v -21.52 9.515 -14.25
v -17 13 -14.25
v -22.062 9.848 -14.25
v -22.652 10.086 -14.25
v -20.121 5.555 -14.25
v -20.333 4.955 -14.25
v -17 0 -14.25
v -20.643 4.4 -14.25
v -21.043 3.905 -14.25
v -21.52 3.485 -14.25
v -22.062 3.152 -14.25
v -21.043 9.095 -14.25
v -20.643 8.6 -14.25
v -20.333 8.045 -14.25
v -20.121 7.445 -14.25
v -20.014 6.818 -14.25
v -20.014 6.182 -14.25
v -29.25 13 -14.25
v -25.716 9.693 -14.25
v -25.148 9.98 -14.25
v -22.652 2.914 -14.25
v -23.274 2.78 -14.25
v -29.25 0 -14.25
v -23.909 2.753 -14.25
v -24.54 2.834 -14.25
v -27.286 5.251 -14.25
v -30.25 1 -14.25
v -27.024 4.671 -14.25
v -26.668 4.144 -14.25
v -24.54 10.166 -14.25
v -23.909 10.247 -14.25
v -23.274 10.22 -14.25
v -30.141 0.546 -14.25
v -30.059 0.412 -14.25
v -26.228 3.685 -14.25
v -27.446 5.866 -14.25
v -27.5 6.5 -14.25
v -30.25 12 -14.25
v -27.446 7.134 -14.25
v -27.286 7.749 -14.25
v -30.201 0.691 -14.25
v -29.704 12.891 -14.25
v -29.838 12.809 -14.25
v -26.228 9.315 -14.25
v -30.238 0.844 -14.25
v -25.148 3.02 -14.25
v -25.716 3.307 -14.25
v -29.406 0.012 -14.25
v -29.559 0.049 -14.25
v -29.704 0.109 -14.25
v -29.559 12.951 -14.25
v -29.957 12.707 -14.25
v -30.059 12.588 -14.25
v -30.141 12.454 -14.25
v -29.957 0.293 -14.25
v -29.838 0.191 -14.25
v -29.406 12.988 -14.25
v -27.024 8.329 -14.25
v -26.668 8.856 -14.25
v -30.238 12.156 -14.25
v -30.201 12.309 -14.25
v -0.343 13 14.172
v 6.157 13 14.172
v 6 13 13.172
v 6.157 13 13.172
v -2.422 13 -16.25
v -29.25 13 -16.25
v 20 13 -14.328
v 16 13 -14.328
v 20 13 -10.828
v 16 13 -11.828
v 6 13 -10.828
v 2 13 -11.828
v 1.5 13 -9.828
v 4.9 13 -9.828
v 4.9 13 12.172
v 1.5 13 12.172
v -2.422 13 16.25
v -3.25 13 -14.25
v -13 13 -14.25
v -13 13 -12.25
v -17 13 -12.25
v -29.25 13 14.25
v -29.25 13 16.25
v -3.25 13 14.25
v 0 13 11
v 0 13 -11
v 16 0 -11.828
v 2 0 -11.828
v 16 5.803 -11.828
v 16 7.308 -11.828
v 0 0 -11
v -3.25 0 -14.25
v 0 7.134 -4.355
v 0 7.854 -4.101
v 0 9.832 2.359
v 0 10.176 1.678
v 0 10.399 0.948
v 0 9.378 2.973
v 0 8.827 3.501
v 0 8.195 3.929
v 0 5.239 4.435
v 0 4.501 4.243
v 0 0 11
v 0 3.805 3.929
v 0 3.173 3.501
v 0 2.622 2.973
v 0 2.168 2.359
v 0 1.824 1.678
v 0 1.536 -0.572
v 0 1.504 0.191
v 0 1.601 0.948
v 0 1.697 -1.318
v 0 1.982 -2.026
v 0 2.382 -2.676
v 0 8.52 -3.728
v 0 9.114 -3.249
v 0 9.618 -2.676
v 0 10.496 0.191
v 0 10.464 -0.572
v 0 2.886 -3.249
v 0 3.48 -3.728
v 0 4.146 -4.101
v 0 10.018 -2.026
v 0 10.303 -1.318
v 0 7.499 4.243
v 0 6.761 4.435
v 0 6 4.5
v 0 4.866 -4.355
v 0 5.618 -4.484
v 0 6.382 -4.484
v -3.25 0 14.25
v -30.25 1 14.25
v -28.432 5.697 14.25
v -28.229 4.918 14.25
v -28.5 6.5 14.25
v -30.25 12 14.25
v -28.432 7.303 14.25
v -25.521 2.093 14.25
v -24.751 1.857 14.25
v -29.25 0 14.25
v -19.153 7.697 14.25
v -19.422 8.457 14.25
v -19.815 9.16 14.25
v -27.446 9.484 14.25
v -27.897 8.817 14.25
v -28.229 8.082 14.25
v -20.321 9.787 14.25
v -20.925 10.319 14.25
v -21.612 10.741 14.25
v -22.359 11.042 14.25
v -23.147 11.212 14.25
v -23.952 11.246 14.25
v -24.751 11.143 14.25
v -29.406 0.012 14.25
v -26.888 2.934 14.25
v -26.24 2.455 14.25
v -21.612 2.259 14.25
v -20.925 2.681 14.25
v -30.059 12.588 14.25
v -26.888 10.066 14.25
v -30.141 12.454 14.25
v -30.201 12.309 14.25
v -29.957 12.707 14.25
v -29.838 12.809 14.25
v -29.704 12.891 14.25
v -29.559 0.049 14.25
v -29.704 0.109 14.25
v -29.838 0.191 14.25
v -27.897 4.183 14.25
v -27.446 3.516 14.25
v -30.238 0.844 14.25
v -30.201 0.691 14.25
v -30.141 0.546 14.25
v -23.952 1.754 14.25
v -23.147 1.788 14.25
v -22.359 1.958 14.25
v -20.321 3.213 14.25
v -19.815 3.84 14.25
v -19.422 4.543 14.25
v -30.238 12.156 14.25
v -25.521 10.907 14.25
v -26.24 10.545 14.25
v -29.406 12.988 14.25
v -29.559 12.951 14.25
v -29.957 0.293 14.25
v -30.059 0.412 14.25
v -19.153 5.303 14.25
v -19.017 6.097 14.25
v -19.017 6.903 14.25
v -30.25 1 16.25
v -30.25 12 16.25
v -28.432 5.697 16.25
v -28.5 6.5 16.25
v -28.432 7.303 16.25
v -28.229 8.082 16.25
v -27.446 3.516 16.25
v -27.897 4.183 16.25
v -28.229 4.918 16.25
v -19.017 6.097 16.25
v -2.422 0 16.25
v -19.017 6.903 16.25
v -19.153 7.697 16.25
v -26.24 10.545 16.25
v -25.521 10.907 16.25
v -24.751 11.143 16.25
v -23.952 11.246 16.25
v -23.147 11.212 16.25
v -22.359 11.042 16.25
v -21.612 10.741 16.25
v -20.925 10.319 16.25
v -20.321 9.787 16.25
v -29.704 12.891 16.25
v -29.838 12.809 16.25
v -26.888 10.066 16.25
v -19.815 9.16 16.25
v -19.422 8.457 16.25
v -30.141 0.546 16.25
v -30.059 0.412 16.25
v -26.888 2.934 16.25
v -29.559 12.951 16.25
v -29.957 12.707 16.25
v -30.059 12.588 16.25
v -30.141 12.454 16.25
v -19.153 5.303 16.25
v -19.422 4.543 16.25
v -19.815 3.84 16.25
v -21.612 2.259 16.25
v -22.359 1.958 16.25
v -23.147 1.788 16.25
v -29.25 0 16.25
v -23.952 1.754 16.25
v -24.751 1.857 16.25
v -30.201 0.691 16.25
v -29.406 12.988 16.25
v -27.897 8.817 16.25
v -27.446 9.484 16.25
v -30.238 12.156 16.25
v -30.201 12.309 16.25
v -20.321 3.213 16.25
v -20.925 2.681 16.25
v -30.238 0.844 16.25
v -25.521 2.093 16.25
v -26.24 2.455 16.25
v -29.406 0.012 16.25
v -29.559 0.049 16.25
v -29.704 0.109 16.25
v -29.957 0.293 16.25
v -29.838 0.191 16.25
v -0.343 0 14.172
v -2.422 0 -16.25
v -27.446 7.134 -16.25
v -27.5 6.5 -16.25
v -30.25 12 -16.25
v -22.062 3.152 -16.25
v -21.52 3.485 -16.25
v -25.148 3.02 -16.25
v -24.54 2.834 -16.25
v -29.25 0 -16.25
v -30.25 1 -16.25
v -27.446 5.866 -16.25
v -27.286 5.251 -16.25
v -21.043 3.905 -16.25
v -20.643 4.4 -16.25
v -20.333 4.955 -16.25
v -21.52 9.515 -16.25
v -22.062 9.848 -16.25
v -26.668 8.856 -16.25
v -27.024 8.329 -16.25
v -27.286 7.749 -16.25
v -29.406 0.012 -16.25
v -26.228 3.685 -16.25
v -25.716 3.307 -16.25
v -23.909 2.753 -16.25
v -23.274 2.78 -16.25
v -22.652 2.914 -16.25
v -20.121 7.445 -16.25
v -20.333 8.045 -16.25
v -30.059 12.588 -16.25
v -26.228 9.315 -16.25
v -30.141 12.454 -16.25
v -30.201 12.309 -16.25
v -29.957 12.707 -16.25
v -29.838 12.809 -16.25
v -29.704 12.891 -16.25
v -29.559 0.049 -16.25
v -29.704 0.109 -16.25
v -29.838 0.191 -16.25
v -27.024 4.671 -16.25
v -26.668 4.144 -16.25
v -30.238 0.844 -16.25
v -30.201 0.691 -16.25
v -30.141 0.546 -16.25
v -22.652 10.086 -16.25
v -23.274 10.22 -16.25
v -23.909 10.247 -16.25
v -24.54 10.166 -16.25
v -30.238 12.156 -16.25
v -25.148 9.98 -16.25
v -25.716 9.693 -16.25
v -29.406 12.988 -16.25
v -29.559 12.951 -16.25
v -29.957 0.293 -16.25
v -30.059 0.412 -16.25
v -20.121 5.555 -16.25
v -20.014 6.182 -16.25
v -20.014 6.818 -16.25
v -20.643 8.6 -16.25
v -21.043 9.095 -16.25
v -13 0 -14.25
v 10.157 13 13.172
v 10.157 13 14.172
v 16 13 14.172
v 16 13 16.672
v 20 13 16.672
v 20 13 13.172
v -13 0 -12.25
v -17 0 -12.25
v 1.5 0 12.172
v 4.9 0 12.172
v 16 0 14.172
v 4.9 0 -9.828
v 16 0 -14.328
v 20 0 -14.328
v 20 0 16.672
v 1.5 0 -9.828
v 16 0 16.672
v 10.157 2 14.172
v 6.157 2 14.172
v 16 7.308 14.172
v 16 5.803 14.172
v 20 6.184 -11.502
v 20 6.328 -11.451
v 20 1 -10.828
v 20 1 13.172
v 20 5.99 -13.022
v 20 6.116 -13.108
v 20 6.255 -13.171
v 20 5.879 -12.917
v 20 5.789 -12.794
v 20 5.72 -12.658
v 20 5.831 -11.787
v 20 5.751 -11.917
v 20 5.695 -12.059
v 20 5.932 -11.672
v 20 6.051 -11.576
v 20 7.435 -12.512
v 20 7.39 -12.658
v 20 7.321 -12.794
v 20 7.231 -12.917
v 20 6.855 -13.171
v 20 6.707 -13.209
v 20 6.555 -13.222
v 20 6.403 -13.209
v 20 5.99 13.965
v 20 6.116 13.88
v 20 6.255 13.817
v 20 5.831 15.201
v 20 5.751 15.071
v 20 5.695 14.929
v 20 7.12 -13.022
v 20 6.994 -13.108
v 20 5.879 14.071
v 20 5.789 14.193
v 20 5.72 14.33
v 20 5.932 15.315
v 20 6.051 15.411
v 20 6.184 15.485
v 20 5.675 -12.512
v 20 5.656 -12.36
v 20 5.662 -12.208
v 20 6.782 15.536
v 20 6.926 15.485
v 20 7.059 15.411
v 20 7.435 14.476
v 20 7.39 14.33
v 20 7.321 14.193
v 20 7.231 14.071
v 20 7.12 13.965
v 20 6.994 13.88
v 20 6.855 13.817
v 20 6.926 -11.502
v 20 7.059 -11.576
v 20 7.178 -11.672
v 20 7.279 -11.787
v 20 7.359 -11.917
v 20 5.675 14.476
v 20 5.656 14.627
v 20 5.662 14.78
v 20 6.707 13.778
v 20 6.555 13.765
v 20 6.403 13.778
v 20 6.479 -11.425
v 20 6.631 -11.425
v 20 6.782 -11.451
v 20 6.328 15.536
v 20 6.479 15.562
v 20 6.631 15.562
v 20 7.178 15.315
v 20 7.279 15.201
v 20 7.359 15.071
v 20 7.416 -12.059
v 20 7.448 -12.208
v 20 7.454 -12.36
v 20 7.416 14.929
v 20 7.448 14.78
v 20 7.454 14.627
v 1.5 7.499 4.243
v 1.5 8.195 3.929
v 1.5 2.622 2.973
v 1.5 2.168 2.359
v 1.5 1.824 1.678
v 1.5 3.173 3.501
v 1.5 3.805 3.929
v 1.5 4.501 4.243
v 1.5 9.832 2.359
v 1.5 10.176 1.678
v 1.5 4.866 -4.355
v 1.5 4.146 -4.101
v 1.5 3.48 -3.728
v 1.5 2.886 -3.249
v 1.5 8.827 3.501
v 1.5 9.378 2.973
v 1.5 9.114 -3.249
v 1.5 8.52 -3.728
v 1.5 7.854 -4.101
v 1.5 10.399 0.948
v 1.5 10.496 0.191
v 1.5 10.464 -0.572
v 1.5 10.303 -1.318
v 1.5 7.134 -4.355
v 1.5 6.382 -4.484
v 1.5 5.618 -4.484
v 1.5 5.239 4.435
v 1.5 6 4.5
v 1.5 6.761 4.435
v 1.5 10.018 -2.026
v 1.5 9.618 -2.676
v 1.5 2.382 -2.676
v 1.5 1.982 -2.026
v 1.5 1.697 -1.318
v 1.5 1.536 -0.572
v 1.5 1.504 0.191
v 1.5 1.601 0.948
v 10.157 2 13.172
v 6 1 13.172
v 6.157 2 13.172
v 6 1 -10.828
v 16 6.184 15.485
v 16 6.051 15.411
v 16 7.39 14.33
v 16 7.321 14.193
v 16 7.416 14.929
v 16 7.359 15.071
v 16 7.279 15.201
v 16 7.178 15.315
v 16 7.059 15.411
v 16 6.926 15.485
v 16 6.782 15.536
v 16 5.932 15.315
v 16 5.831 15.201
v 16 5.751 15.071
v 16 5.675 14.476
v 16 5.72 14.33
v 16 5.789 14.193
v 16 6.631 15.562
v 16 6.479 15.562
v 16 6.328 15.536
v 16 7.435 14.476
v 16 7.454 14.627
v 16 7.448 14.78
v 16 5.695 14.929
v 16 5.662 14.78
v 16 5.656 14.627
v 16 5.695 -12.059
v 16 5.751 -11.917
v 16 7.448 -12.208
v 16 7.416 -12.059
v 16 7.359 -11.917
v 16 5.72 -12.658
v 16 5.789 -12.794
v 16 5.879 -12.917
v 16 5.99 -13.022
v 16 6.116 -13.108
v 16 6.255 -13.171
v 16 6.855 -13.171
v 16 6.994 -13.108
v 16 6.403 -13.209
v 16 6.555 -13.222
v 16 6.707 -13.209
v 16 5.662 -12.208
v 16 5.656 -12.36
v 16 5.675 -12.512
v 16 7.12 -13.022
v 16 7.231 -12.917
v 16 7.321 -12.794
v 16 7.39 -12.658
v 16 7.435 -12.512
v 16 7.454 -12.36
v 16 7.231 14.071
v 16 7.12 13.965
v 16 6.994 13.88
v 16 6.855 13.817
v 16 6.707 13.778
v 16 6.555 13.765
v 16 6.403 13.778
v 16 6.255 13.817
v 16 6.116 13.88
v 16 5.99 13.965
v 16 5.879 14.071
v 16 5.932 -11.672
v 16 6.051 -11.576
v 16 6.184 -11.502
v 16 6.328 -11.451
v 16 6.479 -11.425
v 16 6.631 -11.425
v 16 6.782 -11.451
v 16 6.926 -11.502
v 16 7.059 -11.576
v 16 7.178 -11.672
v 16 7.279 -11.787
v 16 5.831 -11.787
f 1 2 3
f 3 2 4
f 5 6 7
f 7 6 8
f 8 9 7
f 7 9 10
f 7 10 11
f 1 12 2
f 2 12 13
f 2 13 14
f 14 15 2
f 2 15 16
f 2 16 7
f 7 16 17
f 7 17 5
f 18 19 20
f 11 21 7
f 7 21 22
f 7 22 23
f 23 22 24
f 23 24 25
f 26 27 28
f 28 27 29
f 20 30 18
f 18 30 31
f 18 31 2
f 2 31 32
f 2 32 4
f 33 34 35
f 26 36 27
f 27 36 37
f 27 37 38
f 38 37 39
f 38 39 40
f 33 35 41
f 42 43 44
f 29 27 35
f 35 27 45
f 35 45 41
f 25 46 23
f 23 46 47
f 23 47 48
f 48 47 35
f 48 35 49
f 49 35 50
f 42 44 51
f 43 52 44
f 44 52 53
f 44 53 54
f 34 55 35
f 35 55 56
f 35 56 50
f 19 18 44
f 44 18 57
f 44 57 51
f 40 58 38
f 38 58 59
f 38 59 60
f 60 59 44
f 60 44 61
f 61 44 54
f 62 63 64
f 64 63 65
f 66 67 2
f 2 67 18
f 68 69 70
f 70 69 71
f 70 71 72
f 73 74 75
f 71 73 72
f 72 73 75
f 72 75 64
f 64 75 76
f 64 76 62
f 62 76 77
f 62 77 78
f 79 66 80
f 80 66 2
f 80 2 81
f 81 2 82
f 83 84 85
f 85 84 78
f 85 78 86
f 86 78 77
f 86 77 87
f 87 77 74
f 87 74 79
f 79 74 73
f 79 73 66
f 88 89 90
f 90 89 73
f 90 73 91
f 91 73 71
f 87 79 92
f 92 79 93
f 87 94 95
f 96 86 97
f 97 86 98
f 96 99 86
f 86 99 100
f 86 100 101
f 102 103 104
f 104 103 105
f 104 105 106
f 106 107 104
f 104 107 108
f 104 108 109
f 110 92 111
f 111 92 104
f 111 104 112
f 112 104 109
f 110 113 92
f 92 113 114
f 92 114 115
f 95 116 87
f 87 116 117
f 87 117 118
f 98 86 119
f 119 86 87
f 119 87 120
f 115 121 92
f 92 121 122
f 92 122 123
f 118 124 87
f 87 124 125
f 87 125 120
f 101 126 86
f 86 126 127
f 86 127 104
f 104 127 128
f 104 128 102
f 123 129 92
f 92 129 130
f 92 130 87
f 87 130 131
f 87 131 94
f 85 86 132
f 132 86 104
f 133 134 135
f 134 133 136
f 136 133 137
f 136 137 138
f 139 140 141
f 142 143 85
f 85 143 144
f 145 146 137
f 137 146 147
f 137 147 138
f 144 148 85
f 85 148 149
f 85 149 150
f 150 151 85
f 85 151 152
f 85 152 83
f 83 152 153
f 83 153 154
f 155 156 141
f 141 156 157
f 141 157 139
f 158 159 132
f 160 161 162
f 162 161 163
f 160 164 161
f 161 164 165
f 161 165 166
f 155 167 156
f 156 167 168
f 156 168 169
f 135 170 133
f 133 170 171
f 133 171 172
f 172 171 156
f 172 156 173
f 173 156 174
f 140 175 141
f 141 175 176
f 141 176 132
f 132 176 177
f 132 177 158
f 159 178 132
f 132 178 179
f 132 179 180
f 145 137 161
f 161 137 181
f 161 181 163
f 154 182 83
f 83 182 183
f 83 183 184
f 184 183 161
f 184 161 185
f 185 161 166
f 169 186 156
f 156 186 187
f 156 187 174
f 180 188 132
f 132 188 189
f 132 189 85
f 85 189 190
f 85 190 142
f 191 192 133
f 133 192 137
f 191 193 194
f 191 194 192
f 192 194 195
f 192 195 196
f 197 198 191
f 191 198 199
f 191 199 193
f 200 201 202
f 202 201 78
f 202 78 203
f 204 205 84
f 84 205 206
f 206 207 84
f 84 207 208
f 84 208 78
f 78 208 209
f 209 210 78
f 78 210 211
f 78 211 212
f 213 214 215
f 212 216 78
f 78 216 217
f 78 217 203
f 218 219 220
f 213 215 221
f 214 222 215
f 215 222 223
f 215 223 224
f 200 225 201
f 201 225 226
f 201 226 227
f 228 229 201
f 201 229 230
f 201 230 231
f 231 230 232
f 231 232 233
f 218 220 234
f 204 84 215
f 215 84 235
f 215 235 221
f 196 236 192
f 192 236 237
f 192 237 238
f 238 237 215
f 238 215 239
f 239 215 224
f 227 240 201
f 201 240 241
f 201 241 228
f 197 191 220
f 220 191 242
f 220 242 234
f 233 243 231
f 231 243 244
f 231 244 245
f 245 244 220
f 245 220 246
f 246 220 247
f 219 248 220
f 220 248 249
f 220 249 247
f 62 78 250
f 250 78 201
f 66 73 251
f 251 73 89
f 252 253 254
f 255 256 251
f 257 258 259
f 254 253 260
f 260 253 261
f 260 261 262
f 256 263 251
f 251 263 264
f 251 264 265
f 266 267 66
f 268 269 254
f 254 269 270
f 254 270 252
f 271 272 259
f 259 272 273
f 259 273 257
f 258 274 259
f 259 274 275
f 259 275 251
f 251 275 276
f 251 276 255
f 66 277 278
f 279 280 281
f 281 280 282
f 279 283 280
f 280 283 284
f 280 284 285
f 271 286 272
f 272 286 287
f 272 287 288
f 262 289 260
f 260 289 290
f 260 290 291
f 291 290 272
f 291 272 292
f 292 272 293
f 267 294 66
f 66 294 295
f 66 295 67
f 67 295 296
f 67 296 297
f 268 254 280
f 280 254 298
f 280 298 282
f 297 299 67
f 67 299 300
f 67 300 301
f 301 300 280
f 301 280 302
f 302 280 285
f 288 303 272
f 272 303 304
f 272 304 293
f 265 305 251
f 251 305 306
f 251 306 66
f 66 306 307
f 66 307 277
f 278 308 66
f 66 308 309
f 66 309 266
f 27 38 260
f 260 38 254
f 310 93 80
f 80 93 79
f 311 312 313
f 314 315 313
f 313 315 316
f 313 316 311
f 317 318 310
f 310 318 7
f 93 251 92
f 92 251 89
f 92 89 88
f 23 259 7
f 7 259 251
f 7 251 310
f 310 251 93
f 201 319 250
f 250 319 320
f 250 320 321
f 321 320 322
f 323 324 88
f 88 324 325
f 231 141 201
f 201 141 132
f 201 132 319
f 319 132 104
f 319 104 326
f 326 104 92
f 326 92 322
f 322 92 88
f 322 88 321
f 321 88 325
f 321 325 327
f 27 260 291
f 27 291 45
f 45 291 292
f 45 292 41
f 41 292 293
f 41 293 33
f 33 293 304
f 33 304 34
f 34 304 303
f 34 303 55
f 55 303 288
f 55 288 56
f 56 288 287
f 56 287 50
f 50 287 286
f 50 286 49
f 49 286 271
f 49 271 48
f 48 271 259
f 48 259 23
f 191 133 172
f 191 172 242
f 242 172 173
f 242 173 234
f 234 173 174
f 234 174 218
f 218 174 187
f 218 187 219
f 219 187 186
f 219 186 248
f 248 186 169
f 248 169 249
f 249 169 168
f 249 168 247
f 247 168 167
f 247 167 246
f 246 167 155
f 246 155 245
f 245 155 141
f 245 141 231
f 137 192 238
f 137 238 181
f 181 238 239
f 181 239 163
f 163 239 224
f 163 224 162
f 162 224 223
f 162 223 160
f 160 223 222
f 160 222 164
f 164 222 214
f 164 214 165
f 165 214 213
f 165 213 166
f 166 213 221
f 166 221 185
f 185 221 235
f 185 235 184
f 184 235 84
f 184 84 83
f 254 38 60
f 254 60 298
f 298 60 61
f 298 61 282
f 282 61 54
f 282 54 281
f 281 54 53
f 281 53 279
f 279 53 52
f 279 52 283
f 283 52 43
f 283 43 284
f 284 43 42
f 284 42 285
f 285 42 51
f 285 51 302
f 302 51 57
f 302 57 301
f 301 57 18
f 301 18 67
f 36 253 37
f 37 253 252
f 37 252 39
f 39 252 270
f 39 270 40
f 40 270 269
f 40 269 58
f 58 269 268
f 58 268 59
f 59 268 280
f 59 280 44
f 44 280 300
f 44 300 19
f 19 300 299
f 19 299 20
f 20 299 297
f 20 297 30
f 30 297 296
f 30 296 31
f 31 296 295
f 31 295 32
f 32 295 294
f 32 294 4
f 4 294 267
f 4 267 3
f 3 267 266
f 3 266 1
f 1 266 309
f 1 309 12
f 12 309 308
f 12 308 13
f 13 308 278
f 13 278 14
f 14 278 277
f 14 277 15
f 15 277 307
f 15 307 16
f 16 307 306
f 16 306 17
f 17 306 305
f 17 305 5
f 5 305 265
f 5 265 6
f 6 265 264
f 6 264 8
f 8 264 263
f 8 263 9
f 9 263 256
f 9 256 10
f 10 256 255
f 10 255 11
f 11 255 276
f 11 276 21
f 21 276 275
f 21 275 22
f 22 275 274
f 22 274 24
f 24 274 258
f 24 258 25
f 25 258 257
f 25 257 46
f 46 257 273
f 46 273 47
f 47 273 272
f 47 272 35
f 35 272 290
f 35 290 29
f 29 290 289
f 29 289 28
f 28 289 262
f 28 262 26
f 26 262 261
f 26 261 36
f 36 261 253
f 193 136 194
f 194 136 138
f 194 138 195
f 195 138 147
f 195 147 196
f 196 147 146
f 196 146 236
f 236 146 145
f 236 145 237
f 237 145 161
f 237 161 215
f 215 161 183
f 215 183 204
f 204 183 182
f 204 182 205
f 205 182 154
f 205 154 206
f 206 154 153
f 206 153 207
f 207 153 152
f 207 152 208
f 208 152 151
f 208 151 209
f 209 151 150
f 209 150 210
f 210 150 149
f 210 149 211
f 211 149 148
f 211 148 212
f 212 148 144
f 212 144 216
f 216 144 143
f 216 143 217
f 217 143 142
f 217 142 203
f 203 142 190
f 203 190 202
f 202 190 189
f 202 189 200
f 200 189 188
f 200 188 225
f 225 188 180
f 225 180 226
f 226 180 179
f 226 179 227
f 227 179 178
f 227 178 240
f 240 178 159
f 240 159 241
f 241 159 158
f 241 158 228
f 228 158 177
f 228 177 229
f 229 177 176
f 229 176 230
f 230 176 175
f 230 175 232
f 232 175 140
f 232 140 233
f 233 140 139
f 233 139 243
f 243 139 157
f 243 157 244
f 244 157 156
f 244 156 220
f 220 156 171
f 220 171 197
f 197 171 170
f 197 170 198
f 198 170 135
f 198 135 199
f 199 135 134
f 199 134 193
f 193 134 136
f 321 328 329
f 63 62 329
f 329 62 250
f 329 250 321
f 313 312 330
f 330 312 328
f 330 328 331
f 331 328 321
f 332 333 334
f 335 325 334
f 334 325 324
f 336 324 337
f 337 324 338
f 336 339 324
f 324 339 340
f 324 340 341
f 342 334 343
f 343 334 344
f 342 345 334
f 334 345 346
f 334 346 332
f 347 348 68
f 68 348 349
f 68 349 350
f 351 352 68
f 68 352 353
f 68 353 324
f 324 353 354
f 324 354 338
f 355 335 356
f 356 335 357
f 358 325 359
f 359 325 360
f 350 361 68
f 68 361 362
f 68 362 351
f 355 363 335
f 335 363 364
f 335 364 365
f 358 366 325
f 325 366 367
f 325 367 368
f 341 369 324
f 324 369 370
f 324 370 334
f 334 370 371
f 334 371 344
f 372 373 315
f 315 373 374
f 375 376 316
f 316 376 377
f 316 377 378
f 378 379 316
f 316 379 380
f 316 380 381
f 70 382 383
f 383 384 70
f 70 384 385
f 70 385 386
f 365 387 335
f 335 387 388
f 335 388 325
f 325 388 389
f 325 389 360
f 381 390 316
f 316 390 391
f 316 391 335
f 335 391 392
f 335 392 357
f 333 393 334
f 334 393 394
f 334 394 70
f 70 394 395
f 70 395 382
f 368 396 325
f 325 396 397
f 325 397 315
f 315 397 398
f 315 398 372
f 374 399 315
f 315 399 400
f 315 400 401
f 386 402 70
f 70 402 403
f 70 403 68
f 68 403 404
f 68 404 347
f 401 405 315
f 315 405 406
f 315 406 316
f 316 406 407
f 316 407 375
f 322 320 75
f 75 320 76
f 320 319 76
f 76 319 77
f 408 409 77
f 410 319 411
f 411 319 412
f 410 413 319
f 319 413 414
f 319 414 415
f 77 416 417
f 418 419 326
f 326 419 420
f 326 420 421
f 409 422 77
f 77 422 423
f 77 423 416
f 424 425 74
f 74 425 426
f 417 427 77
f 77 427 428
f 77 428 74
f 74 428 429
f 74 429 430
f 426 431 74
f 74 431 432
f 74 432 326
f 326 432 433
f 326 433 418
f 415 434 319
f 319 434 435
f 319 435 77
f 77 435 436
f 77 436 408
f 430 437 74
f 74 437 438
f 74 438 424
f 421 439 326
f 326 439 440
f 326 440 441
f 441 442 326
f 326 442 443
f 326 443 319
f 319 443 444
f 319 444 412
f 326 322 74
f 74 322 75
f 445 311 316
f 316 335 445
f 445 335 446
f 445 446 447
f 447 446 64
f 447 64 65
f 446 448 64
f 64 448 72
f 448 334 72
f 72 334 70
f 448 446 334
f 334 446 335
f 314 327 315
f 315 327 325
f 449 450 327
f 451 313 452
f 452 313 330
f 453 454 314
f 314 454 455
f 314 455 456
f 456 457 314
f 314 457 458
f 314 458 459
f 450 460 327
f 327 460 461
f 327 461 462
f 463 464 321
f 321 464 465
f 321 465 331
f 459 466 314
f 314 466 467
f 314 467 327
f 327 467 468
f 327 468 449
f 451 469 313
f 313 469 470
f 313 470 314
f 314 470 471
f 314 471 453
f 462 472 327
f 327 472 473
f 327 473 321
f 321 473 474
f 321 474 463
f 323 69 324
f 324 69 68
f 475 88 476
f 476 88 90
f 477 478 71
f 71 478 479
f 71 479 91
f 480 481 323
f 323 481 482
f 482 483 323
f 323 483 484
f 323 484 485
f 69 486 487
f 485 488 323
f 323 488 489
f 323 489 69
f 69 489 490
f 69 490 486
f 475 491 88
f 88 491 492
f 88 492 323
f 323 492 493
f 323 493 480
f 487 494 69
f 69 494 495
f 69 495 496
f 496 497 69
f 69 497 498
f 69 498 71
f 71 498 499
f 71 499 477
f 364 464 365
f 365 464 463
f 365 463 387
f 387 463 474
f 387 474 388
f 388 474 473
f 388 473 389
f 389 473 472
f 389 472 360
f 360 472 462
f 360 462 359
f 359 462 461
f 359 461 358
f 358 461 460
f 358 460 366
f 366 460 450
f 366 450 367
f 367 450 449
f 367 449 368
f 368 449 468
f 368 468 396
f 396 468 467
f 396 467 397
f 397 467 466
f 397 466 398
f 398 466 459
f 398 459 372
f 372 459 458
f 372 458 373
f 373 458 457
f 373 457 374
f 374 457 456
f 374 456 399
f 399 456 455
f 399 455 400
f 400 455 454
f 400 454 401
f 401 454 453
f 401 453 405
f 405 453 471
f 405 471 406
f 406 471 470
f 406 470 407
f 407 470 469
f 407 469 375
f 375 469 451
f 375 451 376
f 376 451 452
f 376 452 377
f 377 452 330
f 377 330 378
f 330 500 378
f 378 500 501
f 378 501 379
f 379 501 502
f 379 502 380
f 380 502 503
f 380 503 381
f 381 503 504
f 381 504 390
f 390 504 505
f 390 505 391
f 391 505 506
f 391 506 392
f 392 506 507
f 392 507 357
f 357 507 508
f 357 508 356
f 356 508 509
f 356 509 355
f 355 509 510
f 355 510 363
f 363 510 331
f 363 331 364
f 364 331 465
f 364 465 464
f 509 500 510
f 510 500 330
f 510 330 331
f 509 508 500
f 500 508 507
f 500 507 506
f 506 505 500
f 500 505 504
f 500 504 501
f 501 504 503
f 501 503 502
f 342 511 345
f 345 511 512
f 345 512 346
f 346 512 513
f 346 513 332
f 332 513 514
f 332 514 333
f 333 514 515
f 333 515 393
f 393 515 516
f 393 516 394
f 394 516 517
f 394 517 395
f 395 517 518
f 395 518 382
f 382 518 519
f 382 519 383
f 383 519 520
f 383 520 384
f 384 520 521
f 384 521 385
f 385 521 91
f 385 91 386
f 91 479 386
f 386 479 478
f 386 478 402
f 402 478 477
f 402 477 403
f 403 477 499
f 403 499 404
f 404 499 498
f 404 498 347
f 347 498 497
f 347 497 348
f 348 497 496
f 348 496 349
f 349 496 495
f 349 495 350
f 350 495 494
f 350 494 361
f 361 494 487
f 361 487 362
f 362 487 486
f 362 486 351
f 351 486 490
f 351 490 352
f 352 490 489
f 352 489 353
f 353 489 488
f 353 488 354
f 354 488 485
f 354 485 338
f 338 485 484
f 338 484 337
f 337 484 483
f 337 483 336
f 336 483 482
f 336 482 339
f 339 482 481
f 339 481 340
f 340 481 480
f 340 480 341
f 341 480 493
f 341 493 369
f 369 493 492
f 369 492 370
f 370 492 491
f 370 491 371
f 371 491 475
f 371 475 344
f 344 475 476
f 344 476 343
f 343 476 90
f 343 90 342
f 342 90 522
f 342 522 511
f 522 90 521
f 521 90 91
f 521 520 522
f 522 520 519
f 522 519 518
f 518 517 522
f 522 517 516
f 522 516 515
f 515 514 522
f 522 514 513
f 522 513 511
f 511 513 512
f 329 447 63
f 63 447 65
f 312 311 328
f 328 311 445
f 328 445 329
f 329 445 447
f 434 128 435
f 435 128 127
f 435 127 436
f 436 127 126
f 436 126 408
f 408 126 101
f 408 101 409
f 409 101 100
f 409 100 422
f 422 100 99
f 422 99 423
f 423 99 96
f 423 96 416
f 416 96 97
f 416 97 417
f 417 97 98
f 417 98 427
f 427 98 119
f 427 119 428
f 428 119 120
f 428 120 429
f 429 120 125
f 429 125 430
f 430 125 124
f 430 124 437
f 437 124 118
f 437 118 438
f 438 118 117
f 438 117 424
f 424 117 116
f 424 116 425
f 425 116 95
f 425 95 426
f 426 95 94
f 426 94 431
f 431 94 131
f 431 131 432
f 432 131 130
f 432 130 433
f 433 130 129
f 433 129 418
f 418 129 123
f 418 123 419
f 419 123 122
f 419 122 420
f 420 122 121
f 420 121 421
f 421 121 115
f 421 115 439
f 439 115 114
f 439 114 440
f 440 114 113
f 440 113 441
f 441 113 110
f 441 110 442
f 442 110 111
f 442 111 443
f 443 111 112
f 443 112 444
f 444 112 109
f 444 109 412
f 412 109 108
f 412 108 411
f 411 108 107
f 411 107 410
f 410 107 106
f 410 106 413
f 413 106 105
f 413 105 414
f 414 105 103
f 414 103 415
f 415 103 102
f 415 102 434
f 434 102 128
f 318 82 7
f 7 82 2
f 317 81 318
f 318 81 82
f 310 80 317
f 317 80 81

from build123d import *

# Parameters (mm, degrees)
P_IDAT_VYSUNUT_M1_DEPTH   = 13
ZAOBLIT1_R                = 1
SKICA6_R                  = 3.75
ODEBRAT_VYSUNUT_M4_DEPTH  = 5
SKICA7_R                  = 4.75
ODEBRAT_VYSUNUT_M5_DEPTH  = 5
P_IDAT_VYSUNUT_M2_DEPTH   = 13
SKICA9_W                  = 3.4
SKICA9_H                  = 22
ODEBRAT_VYSUNUT_M6_DEPTH  = 14
SKICA10_W                 = 14
SKICA10_H                 = 24
ODEBRAT_VYSUNUT_M7_DEPTH  = 12
SKICA11_W                 = 2.5
SKICA11_H                 = 13
P_IDAT_VYSUNUT_M3_DEPTH   = 4
SKICA12_R                 = 0.9
ODEBRAT_VYSUNUT_M8_DEPTH  = 4
SKICA13_W                 = 4
SKICA13_H                 = 11
ODEBRAT_VYSUNUT_M9_DEPTH  = 4
SKICA14_R                 = 4.5
ODEBRAT_VYSUNUT_M10_DEPTH = 4
SKICA15_W                 = 4
SKICA15_H                 = 2
P_IDAT_VYSUNUT_M4_DEPTH   = 13


with BuildPart() as part:
    # Skica1 → Přidat vysunutím1 (new body)
    with BuildSketch(Plane(origin=(0, 0, 0), x_dir=(1, 0, 0), z_dir=(0, 1, 0))):
        Polygon((0, -11), (0, 11), (-3.25, 14.25), (-30.25, 14.25), (-30.25, 16.25), (-2.421572875, 16.25), (2, 11.828427125), (2, -11.828427125), (-2.421572875, -16.25), (-30.25, -16.25), (-30.25, -14.25), (-3.25, -14.25), align=None)
    extrude(amount=P_IDAT_VYSUNUT_M1_DEPTH)

    # Zaoblit1
    zaoblit1_edges = [part.edges().sort_by_distance(p)[0] for p in [
        (-30.25, 0, -15.25),
        (-30.25, 0, 15.25),
        (-30.25, 13, 15.25),
        (-30.25, 13, -15.25),
    ]]
    fillet(zaoblit1_edges, radius=ZAOBLIT1_R)

    # Skica6 → Odebrat vysunutím4 (cut)
    with BuildSketch(Plane(origin=(0, 0, -16.25), x_dir=(-1, 0, 0), z_dir=(0, 0, -1))):
        with Locations((23.75, 6.5)):
            Circle(SKICA6_R)
    extrude(amount=-ODEBRAT_VYSUNUT_M4_DEPTH, mode=Mode.SUBTRACT)

    # Skica7 → Odebrat vysunutím5 (cut)
    with BuildSketch(Plane(origin=(0, 0, 14.25), x_dir=(-1, 0, 0), z_dir=(0, 0, -1))):
        with Locations((23.75, 6.5)):
            Circle(SKICA7_R)
    extrude(amount=-ODEBRAT_VYSUNUT_M5_DEPTH, mode=Mode.SUBTRACT)

    # Skica8 → Přidat vysunutím2 (add)
    with BuildSketch(Plane.XZ):
        Polygon((-0.343145751, 14.171572875), (20, 14.171572875), (20, -11.828427125), (2, -11.828427125), (2, 11.828427125), align=None)
    extrude(amount=-P_IDAT_VYSUNUT_M2_DEPTH)

    # Skica9 → Odebrat vysunutím6 (cut, through all)
    with BuildSketch(Plane(origin=(0, 13, 0), x_dir=(1, 0, 0), z_dir=(0, 1, 0))):
        with Locations((3.2, -1.171572875)):
            Rectangle(SKICA9_W, SKICA9_H)
    extrude(amount=-ODEBRAT_VYSUNUT_M6_DEPTH, mode=Mode.SUBTRACT)

    # Skica10 → Odebrat vysunutím7 (cut)
    with BuildSketch(Plane(origin=(0, 13, 0), x_dir=(1, 0, 0), z_dir=(0, 1, 0))):
        with Locations((13, -1.171572875)):
            Rectangle(SKICA10_W, SKICA10_H)
    extrude(amount=-ODEBRAT_VYSUNUT_M7_DEPTH, mode=Mode.SUBTRACT)

    # Skica11 → Přidat vysunutím3 (add)
    with BuildSketch(Plane(origin=(20, 0, 0), x_dir=(0, 0, -1), z_dir=(1, 0, 0))):
        with Locations((-15.421572875, 6.5)):
            Rectangle(SKICA11_W, SKICA11_H)
        with Locations((13.078427125, 6.5)):
            Rectangle(SKICA11_W, SKICA11_H)
    extrude(amount=-P_IDAT_VYSUNUT_M3_DEPTH)

    # Skica12 → Odebrat vysunutím8 (cut)
    with BuildSketch(Plane(origin=(20, 0, 0), x_dir=(0, 0, -1), z_dir=(1, 0, 0))):
        with Locations((-14.665360427, 6.555058558)):
            Circle(SKICA12_R)
        with Locations((12.322113705, 6.555061415)):
            Circle(SKICA12_R)
    extrude(amount=-ODEBRAT_VYSUNUT_M8_DEPTH, mode=Mode.SUBTRACT)

    # Skica13 → Odebrat vysunutím9 (cut)
    with BuildSketch(Plane.XY.offset(14.171572875)):
        with Locations((8.156854249, 7.5)):
            Rectangle(SKICA13_W, SKICA13_H)
    extrude(amount=-ODEBRAT_VYSUNUT_M9_DEPTH, mode=Mode.SUBTRACT)

    # Skica14 → Odebrat vysunutím10 (cut)
    with BuildSketch(Plane.ZY):
        with Locations((0, 6)):
            Circle(SKICA14_R)
    extrude(amount=-ODEBRAT_VYSUNUT_M10_DEPTH, mode=Mode.SUBTRACT)

    # Skica15 → Přidat vysunutím4 (add)
    with BuildSketch(Plane(origin=(0, 13, 0), x_dir=(1, 0, 0), z_dir=(0, 1, 0))):
        with Locations((-15, 13.25)):
            Rectangle(SKICA15_W, SKICA15_H)
    extrude(amount=-P_IDAT_VYSUNUT_M4_DEPTH)


solid = part.part
